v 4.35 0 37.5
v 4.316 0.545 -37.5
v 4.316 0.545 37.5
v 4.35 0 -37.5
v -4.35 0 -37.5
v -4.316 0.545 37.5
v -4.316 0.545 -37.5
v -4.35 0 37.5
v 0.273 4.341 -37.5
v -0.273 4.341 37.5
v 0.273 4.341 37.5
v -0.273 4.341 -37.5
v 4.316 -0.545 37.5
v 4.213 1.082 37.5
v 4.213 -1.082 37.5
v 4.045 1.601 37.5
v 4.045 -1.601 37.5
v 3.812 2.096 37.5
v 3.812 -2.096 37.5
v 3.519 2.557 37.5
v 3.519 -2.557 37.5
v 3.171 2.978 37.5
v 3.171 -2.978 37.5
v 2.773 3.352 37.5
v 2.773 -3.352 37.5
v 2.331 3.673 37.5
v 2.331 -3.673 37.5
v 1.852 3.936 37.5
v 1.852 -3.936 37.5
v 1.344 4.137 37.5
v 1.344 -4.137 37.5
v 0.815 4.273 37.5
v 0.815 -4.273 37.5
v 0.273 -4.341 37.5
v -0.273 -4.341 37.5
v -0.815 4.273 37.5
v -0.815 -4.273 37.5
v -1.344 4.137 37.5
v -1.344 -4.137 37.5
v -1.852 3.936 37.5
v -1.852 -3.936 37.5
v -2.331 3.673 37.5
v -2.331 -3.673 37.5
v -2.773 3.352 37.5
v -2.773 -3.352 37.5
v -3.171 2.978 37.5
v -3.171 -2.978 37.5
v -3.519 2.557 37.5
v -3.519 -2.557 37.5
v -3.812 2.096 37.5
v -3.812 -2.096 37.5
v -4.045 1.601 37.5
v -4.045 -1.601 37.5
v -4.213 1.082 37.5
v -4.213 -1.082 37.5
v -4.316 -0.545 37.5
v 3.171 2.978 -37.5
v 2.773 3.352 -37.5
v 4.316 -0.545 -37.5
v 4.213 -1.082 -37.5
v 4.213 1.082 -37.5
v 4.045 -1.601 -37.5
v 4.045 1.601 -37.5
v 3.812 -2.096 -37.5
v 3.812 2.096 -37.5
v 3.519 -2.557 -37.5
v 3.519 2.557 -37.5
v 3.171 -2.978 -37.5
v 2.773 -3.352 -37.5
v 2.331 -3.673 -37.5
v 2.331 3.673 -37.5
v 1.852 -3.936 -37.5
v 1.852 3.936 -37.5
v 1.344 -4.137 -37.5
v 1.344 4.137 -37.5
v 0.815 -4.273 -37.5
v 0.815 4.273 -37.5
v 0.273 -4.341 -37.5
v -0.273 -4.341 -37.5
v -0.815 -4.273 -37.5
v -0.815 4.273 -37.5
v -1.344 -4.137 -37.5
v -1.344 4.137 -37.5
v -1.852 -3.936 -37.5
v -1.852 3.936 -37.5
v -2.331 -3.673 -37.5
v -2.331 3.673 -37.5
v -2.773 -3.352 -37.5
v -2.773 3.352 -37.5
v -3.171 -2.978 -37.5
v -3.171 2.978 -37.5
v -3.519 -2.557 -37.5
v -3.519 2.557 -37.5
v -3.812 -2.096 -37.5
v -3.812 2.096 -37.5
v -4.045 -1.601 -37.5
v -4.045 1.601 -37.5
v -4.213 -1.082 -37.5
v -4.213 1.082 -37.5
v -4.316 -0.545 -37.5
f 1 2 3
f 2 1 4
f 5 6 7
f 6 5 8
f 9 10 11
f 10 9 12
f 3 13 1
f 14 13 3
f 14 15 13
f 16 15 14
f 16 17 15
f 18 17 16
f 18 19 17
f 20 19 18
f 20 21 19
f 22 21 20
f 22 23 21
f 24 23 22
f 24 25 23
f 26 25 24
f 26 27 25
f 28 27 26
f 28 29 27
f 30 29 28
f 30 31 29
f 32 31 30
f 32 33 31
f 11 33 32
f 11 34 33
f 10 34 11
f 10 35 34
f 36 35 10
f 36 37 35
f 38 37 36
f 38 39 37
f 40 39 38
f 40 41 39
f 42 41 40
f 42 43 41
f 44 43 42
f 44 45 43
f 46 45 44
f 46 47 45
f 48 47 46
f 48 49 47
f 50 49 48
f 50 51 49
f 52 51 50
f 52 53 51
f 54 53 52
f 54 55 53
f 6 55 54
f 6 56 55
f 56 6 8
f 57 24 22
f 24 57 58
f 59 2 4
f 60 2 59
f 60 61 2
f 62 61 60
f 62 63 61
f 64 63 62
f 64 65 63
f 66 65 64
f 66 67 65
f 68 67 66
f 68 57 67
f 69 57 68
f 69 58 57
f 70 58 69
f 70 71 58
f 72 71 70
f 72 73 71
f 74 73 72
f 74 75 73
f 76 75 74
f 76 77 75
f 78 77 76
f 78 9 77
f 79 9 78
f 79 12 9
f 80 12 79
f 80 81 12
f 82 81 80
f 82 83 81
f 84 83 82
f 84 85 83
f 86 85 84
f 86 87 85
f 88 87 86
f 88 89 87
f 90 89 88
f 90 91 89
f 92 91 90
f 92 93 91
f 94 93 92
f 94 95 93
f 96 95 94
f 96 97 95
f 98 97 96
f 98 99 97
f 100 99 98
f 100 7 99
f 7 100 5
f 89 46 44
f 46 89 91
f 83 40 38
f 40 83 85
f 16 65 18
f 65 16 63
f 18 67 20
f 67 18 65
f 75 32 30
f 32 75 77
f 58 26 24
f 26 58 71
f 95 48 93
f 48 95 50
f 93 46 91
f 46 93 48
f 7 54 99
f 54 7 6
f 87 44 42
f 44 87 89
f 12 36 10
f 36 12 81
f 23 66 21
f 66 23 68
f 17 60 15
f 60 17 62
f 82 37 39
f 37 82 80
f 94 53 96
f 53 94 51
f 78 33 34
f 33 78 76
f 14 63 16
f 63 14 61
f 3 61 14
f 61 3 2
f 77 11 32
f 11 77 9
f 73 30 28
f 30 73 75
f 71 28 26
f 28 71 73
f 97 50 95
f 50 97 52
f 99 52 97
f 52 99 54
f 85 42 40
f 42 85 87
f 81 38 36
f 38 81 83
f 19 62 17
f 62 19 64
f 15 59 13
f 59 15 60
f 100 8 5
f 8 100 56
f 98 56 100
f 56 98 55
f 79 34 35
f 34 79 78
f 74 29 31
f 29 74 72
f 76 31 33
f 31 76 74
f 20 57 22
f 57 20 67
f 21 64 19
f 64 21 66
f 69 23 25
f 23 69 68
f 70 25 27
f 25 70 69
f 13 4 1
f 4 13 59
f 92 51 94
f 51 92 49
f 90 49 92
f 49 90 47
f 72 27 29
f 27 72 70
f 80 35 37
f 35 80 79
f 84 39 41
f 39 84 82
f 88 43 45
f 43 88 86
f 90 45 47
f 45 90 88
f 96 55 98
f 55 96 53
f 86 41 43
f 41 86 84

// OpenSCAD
$fn = 50;


difference() {
	union() {
		translate(v = [0, 0, -37.5000000000]) {
			cylinder(h = 75, r = 4.3500000000);
		}
	}
	union() {
		translate(v = [0, 0, -100.0000000000]) {
			cylinder(h = 200, r = 0);
		}
	}
}
